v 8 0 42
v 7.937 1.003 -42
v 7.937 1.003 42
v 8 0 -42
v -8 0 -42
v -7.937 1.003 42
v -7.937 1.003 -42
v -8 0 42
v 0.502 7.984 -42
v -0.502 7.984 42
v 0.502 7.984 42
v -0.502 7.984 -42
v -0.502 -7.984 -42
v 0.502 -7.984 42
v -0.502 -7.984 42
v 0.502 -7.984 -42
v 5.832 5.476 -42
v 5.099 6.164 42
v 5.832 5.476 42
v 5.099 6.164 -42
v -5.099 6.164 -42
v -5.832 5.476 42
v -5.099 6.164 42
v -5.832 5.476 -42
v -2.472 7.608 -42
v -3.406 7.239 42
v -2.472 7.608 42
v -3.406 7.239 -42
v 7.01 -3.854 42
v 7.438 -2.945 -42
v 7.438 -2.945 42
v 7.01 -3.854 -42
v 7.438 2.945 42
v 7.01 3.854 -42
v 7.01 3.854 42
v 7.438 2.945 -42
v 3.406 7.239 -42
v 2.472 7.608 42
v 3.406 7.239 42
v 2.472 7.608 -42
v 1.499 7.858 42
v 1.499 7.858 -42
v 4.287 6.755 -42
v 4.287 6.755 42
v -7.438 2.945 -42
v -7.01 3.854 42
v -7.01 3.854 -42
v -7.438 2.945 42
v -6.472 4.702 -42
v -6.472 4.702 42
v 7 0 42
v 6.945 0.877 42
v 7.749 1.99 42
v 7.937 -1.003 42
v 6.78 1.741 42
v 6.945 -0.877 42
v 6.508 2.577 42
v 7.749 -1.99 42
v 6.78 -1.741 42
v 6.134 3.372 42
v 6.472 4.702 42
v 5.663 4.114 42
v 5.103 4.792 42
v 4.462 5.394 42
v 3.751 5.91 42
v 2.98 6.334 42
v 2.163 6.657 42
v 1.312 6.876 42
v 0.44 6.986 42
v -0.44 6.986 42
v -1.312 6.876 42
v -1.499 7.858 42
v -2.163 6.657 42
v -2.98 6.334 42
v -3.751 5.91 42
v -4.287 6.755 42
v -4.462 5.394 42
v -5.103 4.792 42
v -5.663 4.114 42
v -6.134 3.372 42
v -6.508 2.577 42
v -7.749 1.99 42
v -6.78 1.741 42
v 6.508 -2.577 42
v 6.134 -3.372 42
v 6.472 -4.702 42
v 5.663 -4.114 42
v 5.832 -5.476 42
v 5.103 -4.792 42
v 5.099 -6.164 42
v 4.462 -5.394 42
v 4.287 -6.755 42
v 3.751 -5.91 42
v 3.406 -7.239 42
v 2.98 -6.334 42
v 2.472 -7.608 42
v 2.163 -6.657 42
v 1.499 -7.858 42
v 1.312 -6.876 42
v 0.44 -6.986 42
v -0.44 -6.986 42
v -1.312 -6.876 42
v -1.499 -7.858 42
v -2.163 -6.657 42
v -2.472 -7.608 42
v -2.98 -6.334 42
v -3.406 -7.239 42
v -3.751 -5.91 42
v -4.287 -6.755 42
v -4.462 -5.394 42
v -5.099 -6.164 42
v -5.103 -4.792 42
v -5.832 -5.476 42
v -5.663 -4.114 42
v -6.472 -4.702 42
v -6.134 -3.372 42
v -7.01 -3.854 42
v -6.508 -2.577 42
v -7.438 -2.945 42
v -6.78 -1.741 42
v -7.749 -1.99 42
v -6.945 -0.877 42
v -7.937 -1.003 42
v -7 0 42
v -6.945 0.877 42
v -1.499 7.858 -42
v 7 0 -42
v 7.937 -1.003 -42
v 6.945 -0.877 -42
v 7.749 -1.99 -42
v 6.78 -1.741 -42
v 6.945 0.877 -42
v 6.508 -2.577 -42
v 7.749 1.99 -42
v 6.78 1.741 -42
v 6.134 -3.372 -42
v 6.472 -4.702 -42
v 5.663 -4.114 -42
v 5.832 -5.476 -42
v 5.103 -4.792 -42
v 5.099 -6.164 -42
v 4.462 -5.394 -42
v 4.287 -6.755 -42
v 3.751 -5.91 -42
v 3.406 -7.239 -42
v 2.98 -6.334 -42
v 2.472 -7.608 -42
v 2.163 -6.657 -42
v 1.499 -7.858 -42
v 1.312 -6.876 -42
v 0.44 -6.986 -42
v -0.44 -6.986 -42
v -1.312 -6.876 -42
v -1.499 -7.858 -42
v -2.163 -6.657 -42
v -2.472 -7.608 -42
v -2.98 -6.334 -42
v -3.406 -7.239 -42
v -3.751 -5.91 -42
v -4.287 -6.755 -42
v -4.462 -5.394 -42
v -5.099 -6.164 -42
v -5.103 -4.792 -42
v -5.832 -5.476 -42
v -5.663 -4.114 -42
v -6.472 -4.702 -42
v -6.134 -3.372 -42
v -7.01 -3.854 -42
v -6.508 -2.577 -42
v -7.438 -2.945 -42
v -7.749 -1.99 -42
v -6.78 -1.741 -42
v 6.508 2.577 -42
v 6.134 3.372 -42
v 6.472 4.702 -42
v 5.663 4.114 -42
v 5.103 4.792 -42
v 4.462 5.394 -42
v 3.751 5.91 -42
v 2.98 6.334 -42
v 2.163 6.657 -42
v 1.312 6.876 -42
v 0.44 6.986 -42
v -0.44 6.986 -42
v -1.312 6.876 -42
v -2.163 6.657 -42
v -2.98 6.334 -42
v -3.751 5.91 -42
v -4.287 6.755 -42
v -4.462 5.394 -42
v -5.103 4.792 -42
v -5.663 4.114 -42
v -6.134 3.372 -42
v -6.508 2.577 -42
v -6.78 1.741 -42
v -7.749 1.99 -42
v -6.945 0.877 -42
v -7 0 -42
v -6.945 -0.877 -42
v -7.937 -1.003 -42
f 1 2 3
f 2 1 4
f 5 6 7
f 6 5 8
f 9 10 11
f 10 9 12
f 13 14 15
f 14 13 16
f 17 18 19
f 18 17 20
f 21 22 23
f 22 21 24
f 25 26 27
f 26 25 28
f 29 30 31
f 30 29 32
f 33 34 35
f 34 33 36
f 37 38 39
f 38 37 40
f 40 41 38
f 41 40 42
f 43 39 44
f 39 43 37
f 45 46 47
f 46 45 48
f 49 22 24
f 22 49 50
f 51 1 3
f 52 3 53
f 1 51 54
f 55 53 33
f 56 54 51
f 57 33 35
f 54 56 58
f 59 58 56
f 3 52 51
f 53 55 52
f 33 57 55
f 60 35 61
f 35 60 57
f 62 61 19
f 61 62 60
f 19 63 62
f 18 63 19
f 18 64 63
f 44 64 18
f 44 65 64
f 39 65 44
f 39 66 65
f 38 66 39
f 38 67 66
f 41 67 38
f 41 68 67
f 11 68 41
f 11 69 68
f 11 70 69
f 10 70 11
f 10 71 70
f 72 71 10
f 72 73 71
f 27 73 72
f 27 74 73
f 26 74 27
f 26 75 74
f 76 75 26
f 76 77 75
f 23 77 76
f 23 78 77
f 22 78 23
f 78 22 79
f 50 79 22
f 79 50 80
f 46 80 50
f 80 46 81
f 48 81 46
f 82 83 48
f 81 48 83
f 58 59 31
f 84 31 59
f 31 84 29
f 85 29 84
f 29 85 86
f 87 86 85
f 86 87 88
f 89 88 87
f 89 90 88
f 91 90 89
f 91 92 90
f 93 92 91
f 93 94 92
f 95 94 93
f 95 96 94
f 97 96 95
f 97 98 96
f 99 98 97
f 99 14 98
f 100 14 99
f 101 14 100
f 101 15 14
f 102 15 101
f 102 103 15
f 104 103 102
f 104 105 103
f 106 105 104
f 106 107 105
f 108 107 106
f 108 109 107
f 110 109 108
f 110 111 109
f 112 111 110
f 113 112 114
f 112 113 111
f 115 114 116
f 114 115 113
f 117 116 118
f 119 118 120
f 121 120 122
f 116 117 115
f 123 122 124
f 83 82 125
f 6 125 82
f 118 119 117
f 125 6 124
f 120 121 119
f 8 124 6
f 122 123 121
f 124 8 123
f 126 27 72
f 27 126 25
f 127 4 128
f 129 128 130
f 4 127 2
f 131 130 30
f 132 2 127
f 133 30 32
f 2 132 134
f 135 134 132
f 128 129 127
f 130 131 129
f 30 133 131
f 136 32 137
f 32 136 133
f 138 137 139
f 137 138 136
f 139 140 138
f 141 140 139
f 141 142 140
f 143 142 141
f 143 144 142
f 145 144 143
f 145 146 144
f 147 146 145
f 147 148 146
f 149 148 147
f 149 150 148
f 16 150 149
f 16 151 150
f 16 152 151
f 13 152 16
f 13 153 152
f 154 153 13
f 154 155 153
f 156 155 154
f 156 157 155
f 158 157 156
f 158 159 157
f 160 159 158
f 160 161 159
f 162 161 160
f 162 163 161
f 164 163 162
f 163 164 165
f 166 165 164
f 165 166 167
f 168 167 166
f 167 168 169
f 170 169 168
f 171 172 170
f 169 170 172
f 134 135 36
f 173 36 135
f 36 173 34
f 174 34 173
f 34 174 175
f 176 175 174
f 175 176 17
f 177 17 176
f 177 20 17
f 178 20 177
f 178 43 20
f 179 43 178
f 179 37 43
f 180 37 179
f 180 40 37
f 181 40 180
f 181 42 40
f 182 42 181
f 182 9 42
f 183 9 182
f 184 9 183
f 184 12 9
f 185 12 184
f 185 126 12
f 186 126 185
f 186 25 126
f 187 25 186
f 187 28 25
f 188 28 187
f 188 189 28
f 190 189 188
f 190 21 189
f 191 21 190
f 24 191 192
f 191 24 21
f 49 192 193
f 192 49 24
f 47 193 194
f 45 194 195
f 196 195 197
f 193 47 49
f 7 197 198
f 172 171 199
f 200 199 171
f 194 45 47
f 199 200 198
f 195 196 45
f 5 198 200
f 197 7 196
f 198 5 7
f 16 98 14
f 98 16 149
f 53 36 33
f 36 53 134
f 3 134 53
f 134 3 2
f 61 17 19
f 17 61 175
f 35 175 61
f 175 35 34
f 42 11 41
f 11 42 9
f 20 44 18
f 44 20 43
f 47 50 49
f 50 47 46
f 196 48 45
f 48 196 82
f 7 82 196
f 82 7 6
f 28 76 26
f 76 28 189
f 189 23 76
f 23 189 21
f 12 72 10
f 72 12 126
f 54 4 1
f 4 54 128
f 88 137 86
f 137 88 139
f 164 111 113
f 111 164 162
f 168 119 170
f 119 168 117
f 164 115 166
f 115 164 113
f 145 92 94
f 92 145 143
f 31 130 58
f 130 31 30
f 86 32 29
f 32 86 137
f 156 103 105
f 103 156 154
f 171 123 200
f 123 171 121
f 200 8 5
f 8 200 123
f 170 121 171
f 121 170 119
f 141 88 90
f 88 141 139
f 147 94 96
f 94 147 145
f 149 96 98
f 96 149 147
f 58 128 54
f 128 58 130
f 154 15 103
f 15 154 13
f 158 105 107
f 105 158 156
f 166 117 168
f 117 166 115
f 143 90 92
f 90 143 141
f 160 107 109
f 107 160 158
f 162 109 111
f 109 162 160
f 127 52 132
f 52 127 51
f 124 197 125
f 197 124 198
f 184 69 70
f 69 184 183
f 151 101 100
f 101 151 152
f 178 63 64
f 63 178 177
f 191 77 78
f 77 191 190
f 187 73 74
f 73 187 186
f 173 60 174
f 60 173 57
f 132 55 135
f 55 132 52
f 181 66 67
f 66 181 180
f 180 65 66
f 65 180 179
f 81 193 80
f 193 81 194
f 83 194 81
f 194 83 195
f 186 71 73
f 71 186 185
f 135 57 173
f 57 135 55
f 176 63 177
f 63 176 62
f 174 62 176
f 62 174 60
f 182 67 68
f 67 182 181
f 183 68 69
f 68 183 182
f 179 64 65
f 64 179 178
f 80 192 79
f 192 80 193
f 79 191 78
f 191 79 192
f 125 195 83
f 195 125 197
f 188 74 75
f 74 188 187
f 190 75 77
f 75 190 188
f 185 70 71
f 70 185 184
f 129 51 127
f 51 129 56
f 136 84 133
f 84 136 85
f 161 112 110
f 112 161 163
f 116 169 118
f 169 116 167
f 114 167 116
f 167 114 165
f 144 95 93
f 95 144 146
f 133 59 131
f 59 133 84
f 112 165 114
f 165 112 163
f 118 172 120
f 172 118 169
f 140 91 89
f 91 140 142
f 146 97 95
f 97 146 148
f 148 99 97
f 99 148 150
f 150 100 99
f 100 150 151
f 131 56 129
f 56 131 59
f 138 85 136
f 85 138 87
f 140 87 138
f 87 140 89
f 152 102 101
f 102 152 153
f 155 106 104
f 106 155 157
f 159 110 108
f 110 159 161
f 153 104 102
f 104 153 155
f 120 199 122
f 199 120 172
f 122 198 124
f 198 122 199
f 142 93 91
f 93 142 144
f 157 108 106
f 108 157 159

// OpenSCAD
$fn = 50;


difference() {
	union() {
		translate(v = [0, 0, -42.0000000000]) {
			cylinder(h = 84, r = 8.0000000000);
		}
	}
	union() {
		translate(v = [0, 0, -100.0000000000]) {
			cylinder(h = 200, r = 7);
		}
	}
}
